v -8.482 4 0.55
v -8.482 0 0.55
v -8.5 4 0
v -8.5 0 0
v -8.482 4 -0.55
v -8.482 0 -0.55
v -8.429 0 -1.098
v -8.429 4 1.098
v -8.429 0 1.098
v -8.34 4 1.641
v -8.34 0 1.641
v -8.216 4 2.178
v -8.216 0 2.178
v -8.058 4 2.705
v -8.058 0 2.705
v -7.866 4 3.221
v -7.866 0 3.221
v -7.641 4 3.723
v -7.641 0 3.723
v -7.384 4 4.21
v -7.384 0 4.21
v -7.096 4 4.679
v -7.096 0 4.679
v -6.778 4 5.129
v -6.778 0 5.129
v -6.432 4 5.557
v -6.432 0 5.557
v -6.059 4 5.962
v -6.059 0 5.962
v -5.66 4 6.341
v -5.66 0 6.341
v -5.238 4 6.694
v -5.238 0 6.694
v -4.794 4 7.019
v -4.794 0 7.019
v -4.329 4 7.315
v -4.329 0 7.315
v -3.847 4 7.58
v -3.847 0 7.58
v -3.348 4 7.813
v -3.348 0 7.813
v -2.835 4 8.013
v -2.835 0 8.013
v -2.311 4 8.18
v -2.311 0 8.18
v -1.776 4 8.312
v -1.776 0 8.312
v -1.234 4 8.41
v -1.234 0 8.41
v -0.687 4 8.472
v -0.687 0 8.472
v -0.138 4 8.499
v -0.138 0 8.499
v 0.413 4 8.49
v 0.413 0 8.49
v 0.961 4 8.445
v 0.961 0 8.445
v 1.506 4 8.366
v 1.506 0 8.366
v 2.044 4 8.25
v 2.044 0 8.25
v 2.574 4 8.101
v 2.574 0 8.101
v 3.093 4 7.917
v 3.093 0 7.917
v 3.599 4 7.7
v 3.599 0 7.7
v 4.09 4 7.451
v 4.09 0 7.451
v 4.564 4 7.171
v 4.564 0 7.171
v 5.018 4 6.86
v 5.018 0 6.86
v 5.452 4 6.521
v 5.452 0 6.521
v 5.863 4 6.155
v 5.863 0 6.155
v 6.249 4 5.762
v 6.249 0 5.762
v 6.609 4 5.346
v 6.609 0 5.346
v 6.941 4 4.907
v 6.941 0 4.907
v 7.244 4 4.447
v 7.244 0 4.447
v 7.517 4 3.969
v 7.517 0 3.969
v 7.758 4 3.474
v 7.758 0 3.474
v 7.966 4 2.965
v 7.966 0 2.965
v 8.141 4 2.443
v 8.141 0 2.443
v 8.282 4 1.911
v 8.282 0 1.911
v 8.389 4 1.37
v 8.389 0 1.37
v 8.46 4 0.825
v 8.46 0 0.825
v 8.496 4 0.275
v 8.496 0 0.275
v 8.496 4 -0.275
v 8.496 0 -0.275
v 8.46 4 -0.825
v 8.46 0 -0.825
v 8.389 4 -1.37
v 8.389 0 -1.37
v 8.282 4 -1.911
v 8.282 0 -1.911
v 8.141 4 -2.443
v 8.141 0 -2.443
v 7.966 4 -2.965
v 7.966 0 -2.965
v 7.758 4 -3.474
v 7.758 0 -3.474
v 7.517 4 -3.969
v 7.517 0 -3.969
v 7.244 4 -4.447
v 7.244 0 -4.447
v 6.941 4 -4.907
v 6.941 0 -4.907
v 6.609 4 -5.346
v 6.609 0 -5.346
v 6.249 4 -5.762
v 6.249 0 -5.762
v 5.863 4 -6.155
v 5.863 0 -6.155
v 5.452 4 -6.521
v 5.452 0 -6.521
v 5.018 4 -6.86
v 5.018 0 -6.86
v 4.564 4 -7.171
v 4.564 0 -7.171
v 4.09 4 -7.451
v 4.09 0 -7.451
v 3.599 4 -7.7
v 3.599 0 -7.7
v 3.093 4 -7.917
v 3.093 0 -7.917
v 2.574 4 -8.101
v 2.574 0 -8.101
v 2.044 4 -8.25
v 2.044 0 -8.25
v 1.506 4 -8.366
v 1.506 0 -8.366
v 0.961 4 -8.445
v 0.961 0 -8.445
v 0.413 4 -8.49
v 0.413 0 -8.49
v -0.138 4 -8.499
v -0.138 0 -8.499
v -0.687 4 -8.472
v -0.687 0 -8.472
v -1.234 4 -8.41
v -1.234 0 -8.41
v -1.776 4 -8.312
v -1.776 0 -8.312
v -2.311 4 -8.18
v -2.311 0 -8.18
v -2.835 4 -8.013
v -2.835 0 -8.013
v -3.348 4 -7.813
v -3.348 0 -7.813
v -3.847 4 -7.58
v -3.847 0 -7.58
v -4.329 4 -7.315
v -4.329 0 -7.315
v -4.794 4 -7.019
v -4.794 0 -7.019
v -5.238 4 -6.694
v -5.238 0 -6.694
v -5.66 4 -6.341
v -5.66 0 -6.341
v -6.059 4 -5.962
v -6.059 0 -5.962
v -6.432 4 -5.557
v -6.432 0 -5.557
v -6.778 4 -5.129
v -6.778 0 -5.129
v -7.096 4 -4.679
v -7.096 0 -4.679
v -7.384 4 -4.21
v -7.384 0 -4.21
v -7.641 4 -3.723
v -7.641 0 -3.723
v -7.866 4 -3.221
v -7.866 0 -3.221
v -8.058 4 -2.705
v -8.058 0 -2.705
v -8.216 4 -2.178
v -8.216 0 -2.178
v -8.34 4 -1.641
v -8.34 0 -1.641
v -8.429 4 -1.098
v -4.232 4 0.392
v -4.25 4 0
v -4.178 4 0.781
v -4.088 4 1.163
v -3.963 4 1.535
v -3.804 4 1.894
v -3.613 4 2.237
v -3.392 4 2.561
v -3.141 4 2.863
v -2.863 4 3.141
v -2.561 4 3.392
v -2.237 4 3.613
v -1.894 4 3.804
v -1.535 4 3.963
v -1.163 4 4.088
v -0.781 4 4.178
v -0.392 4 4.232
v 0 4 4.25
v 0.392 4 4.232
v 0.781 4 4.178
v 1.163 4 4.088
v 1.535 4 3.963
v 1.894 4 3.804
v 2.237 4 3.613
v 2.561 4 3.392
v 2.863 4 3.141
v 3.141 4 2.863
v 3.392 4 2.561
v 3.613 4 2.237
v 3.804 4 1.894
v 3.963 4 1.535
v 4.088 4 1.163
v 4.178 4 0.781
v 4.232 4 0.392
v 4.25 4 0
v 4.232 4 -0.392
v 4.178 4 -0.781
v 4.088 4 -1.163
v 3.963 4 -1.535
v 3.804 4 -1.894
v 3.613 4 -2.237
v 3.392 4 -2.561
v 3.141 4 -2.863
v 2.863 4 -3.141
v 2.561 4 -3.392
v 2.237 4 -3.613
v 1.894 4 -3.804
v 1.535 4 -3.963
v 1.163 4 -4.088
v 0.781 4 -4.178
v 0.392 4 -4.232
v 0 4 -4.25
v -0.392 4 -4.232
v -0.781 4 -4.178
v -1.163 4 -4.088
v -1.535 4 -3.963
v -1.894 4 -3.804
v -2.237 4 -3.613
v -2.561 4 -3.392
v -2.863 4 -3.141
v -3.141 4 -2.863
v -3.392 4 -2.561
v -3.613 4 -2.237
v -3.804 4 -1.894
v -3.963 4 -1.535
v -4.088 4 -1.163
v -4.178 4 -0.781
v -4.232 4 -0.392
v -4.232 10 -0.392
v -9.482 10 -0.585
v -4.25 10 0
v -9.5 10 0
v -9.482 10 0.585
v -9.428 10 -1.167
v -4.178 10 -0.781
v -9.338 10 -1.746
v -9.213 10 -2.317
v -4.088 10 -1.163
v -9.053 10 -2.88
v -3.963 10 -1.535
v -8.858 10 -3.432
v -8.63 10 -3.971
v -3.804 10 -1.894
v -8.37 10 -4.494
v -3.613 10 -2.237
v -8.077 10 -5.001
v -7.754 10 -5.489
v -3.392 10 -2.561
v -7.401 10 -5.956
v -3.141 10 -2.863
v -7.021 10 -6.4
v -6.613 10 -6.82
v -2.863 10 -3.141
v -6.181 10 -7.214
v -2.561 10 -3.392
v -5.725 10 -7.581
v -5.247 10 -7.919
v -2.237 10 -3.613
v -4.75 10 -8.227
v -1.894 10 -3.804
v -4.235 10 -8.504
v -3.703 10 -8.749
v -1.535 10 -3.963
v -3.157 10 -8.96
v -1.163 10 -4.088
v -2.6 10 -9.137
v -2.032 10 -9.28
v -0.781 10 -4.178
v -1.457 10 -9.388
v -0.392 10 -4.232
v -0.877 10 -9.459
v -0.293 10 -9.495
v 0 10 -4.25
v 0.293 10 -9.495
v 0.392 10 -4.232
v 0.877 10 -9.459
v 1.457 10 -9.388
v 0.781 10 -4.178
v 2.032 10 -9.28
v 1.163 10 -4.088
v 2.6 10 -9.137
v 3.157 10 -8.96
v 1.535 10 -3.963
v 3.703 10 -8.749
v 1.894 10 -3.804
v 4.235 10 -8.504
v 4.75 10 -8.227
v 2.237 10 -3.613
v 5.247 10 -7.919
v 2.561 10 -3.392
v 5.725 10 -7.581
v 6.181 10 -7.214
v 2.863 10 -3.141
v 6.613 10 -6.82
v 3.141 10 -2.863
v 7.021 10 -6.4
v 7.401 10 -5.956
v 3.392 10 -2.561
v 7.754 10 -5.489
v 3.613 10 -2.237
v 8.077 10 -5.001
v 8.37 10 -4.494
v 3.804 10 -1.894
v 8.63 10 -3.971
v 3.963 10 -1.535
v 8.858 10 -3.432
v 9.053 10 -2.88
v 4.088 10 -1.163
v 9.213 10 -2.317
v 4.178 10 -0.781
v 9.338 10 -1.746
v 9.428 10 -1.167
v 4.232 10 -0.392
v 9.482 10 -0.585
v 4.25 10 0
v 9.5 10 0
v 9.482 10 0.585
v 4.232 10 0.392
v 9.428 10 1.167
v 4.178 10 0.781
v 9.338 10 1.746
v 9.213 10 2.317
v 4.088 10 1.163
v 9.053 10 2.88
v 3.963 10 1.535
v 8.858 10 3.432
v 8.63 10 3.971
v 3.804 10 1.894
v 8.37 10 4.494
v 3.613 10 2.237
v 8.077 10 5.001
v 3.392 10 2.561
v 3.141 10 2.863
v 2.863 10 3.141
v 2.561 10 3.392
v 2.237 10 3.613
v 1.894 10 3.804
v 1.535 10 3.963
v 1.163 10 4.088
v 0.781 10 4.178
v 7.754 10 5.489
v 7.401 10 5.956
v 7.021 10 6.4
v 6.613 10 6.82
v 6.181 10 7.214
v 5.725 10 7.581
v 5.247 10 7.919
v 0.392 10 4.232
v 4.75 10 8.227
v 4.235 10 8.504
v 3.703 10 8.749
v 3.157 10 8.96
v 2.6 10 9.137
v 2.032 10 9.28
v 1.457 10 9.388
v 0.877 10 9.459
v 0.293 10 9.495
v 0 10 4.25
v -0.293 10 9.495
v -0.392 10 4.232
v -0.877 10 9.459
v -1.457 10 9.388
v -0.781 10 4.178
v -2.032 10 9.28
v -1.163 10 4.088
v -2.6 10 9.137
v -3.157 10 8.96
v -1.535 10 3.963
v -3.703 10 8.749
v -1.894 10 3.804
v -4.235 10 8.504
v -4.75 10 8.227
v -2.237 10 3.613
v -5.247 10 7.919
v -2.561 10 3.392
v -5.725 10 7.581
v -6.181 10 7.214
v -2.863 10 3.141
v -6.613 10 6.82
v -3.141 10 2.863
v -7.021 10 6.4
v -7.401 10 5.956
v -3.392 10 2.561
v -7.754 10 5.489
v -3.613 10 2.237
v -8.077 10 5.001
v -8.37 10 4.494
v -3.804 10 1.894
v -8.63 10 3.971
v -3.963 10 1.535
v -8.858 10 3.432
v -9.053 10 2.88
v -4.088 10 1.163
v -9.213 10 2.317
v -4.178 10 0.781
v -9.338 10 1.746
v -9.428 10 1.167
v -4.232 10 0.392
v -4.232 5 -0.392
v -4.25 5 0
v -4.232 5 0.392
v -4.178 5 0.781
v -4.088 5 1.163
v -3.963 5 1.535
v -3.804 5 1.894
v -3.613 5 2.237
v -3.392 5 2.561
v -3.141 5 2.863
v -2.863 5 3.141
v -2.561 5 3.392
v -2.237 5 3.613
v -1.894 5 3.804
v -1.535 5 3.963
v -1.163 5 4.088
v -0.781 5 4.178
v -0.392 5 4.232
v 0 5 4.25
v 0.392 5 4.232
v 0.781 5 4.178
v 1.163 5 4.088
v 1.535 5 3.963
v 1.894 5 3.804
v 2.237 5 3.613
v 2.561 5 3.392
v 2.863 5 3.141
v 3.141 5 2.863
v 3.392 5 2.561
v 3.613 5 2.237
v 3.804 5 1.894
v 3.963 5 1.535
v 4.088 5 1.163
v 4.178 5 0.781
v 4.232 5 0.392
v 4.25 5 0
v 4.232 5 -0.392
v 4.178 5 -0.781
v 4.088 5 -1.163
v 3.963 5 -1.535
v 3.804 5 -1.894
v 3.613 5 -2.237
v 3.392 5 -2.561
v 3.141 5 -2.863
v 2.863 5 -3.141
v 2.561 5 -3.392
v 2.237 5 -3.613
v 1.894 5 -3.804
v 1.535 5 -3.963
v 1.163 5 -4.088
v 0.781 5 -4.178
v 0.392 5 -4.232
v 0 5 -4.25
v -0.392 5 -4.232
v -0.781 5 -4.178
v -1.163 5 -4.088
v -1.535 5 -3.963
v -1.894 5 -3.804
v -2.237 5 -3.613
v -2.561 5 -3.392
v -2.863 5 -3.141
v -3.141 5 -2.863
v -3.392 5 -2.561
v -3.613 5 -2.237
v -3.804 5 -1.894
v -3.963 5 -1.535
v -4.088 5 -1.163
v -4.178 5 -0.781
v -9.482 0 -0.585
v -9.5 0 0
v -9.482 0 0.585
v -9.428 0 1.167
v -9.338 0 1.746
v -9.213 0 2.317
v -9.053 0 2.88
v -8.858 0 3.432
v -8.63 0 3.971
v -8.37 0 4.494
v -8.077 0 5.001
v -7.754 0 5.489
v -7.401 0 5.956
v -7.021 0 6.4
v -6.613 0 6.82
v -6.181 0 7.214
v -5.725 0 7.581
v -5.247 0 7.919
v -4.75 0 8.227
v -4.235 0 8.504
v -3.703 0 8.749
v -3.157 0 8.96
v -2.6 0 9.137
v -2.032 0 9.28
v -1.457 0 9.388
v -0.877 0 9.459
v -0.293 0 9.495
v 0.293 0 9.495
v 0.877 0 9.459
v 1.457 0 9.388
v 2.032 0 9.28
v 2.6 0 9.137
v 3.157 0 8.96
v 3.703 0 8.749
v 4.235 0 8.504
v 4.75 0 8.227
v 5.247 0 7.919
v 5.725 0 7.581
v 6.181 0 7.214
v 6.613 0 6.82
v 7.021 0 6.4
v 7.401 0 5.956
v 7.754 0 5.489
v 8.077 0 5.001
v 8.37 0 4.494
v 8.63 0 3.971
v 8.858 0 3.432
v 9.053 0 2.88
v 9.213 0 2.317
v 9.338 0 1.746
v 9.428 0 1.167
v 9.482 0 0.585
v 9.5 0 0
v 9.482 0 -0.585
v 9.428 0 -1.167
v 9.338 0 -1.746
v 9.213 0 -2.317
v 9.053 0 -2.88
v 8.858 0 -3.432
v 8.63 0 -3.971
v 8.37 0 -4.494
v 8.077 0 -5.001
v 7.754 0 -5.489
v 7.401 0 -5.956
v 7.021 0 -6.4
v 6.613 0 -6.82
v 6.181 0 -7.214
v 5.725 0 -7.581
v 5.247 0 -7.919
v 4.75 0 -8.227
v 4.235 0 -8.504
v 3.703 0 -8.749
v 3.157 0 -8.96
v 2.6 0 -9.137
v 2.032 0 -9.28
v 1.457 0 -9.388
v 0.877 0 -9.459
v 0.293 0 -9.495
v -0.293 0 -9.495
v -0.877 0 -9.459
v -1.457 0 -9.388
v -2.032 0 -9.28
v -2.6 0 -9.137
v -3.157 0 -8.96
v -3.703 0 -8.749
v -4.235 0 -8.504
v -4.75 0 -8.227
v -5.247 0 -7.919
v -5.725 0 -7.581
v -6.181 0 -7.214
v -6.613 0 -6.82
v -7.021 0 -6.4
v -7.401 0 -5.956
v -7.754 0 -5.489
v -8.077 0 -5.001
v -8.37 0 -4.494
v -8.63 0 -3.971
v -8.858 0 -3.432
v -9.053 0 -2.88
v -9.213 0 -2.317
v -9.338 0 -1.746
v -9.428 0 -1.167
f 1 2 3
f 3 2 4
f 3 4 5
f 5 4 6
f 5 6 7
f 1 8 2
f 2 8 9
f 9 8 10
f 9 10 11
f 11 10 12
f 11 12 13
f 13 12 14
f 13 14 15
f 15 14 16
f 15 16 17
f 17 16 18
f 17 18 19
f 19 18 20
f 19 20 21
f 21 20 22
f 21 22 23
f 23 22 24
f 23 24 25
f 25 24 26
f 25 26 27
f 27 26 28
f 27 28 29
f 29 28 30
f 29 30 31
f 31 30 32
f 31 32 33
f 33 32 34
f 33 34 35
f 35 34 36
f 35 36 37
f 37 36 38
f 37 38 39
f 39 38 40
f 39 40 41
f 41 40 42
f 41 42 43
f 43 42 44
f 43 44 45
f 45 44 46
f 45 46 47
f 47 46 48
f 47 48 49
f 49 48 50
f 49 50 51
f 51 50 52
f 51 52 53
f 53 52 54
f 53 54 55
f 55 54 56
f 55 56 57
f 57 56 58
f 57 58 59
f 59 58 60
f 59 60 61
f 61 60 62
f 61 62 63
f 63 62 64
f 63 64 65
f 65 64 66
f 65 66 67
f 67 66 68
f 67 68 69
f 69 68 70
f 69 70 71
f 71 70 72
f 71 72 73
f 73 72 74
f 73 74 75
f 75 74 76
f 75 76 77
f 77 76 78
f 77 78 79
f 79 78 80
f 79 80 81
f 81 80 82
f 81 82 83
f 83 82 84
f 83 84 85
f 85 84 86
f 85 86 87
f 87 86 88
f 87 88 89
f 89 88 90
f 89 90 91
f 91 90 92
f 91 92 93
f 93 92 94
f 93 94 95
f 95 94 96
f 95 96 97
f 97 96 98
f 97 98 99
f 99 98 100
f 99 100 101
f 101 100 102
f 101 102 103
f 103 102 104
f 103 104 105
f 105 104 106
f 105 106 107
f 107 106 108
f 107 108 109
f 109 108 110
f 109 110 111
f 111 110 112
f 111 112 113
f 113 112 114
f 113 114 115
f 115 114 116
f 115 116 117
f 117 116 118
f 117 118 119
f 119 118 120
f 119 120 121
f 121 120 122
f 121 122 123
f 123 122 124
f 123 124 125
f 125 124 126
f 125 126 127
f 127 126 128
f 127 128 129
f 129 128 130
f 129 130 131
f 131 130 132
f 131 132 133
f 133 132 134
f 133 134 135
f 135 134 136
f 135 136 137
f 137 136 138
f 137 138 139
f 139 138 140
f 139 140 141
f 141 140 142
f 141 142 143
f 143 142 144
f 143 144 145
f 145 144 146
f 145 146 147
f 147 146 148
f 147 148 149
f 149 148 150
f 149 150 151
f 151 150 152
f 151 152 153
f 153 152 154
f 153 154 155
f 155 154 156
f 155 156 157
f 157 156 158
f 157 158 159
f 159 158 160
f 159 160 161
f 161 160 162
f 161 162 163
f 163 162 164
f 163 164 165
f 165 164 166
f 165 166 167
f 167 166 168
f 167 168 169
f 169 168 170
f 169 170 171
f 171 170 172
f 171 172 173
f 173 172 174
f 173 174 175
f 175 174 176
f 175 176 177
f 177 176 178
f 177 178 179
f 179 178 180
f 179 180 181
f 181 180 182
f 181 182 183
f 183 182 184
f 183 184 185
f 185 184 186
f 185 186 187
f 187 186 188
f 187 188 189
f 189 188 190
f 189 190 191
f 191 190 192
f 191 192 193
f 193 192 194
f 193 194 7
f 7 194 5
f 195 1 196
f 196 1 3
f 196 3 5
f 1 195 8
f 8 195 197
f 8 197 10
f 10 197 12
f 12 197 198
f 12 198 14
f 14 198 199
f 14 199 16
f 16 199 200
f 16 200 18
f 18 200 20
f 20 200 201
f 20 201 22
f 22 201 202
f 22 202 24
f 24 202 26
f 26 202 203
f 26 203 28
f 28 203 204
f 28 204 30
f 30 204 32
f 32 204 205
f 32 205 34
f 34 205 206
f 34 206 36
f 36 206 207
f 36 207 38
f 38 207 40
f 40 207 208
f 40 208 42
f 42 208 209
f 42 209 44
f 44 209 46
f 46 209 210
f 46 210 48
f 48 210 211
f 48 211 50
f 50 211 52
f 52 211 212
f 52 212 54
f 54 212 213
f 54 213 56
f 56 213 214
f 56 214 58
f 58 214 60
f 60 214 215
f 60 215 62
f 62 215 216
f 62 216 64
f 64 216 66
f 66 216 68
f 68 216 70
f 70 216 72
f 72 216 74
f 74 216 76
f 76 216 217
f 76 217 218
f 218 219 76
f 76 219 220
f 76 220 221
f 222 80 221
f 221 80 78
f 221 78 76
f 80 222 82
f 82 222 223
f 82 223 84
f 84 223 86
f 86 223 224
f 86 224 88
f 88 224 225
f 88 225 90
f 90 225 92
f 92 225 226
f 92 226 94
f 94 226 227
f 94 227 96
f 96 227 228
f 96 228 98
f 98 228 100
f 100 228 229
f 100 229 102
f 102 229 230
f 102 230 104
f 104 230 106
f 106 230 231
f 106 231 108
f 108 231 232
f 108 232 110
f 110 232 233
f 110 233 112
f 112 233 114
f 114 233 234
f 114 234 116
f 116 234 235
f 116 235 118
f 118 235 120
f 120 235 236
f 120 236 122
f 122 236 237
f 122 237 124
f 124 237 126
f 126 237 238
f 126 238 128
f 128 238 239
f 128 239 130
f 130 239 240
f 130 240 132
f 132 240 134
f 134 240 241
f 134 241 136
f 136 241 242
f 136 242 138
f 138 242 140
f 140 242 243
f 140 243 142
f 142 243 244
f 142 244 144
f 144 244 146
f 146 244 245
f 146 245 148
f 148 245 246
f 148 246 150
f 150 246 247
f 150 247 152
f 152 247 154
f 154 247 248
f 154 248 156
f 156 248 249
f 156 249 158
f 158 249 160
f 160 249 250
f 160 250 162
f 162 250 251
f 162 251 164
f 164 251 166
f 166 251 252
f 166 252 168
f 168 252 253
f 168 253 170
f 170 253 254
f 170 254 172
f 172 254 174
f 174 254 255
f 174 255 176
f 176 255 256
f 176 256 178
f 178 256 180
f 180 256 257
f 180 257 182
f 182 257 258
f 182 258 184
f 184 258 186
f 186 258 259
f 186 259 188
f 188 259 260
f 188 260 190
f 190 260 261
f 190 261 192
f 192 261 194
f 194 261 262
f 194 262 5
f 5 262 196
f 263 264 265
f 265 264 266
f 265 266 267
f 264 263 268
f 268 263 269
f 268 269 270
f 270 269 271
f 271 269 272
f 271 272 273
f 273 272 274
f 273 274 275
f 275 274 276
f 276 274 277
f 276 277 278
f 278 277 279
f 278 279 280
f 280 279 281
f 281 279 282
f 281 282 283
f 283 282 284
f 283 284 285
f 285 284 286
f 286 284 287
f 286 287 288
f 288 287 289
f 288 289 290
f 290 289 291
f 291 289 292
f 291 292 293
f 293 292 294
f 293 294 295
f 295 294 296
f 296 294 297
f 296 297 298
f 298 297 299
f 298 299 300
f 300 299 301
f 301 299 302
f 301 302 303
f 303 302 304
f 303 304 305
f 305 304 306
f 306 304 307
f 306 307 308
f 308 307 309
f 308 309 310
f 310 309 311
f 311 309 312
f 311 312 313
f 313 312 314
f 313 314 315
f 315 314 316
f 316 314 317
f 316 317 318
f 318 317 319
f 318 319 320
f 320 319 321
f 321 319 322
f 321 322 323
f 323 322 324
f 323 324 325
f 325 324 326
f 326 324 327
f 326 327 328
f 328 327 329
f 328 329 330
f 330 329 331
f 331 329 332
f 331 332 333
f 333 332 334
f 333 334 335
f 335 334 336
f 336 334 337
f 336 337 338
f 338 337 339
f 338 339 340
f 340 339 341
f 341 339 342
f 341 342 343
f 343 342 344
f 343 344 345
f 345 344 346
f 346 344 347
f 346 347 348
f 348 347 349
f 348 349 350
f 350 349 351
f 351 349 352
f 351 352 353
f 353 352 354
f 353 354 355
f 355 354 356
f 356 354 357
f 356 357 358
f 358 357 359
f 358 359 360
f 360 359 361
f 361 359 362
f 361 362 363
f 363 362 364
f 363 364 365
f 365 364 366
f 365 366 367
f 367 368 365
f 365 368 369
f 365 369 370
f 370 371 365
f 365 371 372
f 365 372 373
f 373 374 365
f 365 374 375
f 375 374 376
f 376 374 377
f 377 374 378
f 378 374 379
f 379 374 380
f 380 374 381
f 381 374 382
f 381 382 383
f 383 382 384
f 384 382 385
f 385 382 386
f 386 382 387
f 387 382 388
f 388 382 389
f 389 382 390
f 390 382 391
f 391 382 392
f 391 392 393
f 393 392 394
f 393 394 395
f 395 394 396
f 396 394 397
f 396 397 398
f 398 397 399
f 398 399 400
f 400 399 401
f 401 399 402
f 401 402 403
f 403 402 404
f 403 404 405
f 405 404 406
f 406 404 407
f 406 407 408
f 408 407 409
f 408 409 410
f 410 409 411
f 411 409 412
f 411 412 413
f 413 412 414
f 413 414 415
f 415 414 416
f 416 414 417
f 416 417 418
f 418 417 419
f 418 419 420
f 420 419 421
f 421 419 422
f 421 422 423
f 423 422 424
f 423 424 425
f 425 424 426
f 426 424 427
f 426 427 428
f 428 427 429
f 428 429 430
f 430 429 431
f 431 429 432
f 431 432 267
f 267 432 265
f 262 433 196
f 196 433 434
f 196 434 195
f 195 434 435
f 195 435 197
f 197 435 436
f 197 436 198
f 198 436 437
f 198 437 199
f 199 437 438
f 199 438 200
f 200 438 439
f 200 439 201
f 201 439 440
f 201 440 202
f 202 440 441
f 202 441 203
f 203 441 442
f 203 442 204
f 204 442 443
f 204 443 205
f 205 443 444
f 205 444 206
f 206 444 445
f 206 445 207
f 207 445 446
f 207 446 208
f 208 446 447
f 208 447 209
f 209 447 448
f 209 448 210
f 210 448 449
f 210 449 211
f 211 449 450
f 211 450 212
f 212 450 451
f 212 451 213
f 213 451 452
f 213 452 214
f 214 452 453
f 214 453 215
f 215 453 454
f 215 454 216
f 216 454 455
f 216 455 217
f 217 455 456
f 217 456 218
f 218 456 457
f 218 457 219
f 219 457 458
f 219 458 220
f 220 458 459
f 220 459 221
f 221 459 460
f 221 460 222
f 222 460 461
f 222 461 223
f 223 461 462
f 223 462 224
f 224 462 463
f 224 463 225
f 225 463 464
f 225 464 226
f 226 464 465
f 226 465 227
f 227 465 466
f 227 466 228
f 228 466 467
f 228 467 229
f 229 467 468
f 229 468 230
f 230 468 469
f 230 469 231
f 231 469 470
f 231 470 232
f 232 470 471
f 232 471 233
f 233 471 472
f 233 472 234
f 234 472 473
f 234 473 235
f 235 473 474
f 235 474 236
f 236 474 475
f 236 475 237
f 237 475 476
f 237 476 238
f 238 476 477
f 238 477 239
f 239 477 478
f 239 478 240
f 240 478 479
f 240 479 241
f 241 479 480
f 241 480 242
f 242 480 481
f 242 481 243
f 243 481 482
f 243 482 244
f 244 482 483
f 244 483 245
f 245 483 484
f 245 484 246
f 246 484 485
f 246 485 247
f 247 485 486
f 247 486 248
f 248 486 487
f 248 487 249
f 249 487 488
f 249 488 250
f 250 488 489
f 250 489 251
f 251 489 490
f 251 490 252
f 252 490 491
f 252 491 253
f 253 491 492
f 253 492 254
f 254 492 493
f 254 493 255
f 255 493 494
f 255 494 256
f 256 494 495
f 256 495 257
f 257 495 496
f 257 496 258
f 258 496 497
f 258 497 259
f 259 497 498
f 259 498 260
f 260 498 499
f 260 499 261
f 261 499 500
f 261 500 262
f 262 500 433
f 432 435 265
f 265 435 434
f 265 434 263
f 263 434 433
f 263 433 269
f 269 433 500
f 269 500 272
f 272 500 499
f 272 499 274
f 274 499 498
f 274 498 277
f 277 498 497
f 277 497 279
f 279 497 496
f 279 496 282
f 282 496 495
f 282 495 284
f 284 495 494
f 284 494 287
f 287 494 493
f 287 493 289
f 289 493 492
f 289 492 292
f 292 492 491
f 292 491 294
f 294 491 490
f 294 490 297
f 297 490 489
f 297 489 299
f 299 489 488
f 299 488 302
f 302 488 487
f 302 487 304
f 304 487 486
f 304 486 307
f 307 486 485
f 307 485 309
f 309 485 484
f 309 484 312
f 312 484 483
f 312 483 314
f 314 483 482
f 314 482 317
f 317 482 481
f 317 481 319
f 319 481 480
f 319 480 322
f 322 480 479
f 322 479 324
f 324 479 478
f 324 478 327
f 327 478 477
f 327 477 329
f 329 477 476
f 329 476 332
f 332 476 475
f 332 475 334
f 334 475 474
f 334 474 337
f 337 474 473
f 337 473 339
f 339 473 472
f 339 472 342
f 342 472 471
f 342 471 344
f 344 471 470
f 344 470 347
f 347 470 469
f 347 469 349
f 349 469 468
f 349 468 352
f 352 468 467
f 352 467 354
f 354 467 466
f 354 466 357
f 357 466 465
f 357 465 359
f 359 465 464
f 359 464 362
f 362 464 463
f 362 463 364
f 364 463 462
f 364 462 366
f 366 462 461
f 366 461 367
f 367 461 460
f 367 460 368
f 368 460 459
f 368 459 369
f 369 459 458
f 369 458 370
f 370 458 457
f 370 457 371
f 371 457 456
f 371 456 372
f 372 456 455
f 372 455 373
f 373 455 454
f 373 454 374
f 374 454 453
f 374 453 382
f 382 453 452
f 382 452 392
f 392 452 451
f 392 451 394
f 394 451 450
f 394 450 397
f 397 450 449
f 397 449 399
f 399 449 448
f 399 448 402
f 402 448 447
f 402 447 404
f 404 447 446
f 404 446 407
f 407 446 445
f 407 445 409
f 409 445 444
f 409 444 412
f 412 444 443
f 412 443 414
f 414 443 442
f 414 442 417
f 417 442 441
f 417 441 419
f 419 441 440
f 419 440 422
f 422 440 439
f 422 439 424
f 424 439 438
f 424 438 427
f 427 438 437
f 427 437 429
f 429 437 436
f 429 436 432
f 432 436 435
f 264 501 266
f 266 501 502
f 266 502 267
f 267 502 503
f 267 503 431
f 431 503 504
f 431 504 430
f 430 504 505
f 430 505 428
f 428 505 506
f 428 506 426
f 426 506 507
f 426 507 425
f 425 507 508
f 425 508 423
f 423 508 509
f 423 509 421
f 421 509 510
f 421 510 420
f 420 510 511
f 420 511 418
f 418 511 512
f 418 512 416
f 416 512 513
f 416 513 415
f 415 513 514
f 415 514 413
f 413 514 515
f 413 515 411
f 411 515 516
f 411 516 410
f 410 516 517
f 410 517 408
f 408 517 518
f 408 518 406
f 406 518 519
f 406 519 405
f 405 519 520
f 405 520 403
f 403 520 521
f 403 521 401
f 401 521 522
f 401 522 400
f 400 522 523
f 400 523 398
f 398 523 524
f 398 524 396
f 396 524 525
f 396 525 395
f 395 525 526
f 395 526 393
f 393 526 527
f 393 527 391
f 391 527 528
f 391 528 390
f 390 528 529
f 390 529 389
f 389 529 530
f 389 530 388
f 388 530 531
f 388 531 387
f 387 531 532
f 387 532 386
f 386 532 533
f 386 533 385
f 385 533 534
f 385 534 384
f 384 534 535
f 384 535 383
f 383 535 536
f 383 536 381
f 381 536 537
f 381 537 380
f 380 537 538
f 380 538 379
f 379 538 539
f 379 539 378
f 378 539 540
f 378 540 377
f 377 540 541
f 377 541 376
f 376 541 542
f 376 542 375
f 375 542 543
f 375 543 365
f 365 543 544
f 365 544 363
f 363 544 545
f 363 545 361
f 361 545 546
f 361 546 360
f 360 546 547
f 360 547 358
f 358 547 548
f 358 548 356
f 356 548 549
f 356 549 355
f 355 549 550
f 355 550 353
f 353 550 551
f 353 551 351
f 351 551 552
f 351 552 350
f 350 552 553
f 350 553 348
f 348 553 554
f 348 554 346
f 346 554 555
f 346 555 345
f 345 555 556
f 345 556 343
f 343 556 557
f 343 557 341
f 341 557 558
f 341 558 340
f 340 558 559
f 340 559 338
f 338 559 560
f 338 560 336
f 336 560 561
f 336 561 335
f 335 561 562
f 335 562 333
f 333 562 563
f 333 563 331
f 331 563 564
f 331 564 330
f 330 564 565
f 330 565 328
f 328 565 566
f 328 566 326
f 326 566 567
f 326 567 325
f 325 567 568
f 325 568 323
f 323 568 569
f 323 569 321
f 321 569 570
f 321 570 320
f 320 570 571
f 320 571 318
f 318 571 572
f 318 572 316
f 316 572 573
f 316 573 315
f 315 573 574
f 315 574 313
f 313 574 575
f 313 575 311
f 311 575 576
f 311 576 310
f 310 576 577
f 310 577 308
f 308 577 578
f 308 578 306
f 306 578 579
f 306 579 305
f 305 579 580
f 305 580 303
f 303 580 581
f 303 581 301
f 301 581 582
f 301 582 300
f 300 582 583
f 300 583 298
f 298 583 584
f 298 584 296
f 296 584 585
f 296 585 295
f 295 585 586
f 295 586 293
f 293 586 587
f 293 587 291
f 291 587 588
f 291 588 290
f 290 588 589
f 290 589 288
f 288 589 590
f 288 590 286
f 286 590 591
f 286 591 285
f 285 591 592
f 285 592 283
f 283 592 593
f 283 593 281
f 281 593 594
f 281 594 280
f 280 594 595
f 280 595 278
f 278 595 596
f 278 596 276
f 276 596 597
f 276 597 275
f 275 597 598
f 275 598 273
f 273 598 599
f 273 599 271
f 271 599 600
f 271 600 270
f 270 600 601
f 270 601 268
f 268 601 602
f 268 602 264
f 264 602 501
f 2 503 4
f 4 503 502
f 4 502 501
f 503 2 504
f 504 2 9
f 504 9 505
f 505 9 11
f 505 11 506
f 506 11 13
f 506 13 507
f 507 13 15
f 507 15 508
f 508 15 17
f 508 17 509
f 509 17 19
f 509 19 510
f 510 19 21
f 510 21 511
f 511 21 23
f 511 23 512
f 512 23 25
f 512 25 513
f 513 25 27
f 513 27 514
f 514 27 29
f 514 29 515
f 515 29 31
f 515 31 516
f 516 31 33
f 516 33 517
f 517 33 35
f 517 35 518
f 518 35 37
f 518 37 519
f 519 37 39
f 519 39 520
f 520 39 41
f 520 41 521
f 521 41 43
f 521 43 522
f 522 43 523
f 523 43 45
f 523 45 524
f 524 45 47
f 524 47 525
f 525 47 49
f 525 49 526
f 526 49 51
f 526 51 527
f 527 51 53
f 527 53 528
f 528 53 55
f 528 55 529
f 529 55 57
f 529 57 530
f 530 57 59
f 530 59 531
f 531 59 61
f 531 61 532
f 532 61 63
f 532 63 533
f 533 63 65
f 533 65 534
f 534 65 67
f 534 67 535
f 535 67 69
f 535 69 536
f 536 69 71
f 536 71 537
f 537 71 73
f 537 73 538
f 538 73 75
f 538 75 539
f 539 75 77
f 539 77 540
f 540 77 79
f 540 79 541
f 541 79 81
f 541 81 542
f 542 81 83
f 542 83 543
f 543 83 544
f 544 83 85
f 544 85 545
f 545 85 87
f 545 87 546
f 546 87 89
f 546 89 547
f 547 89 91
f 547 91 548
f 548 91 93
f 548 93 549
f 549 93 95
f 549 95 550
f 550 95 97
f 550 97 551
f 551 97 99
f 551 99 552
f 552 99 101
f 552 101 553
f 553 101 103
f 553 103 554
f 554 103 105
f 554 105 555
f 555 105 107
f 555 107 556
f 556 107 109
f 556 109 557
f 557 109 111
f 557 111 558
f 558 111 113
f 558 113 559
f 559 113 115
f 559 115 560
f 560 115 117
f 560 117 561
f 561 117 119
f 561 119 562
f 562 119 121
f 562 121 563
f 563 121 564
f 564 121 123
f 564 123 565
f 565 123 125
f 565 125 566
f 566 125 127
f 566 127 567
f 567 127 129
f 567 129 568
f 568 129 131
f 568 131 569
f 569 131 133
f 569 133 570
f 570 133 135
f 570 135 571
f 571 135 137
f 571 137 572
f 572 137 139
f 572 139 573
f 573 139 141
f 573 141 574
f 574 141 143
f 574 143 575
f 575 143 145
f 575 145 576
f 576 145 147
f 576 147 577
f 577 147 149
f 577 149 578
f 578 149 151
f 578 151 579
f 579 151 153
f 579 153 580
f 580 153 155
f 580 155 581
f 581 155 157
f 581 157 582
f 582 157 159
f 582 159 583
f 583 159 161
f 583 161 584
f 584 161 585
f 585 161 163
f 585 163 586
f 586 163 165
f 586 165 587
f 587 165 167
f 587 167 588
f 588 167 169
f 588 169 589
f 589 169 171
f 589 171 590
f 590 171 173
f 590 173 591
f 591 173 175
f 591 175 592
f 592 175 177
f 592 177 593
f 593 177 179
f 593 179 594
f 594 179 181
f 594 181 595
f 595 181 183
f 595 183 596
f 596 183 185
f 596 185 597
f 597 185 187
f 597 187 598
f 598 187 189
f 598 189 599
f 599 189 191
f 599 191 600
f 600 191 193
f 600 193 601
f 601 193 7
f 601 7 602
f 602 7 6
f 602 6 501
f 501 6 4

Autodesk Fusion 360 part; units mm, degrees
sketch "Sketch1" plane through (0, 0, 0) normal (0, 1, 0) x (1, 0, 0)
  circle A0 centre (0, 0) radius 8.5
  circle A1 centre (0, 0) radius 9.5
  circle A2 centre (0, 0) radius 4.25
  dimension "d1" = 17
  dimension "d2" = 19
  dimension "d7" = 8.5
extrude "Extrude1" add sketch "Sketch1" along normal blind 20 contours A1
extrude "Extrude2" add sketch "Sketch1" along normal blind 20 contours A0 | A2
extrude "Extrude3" cut sketch "Sketch1" along normal blind 20 contours A2
extrude "Extrude4" cut 1 faces at (7.7146, 20, 0.472) along direction (0, -1, 0) blind 10
extrude "Extrude5" cut sketch "Sketch1" along normal blind 4 contours A0
